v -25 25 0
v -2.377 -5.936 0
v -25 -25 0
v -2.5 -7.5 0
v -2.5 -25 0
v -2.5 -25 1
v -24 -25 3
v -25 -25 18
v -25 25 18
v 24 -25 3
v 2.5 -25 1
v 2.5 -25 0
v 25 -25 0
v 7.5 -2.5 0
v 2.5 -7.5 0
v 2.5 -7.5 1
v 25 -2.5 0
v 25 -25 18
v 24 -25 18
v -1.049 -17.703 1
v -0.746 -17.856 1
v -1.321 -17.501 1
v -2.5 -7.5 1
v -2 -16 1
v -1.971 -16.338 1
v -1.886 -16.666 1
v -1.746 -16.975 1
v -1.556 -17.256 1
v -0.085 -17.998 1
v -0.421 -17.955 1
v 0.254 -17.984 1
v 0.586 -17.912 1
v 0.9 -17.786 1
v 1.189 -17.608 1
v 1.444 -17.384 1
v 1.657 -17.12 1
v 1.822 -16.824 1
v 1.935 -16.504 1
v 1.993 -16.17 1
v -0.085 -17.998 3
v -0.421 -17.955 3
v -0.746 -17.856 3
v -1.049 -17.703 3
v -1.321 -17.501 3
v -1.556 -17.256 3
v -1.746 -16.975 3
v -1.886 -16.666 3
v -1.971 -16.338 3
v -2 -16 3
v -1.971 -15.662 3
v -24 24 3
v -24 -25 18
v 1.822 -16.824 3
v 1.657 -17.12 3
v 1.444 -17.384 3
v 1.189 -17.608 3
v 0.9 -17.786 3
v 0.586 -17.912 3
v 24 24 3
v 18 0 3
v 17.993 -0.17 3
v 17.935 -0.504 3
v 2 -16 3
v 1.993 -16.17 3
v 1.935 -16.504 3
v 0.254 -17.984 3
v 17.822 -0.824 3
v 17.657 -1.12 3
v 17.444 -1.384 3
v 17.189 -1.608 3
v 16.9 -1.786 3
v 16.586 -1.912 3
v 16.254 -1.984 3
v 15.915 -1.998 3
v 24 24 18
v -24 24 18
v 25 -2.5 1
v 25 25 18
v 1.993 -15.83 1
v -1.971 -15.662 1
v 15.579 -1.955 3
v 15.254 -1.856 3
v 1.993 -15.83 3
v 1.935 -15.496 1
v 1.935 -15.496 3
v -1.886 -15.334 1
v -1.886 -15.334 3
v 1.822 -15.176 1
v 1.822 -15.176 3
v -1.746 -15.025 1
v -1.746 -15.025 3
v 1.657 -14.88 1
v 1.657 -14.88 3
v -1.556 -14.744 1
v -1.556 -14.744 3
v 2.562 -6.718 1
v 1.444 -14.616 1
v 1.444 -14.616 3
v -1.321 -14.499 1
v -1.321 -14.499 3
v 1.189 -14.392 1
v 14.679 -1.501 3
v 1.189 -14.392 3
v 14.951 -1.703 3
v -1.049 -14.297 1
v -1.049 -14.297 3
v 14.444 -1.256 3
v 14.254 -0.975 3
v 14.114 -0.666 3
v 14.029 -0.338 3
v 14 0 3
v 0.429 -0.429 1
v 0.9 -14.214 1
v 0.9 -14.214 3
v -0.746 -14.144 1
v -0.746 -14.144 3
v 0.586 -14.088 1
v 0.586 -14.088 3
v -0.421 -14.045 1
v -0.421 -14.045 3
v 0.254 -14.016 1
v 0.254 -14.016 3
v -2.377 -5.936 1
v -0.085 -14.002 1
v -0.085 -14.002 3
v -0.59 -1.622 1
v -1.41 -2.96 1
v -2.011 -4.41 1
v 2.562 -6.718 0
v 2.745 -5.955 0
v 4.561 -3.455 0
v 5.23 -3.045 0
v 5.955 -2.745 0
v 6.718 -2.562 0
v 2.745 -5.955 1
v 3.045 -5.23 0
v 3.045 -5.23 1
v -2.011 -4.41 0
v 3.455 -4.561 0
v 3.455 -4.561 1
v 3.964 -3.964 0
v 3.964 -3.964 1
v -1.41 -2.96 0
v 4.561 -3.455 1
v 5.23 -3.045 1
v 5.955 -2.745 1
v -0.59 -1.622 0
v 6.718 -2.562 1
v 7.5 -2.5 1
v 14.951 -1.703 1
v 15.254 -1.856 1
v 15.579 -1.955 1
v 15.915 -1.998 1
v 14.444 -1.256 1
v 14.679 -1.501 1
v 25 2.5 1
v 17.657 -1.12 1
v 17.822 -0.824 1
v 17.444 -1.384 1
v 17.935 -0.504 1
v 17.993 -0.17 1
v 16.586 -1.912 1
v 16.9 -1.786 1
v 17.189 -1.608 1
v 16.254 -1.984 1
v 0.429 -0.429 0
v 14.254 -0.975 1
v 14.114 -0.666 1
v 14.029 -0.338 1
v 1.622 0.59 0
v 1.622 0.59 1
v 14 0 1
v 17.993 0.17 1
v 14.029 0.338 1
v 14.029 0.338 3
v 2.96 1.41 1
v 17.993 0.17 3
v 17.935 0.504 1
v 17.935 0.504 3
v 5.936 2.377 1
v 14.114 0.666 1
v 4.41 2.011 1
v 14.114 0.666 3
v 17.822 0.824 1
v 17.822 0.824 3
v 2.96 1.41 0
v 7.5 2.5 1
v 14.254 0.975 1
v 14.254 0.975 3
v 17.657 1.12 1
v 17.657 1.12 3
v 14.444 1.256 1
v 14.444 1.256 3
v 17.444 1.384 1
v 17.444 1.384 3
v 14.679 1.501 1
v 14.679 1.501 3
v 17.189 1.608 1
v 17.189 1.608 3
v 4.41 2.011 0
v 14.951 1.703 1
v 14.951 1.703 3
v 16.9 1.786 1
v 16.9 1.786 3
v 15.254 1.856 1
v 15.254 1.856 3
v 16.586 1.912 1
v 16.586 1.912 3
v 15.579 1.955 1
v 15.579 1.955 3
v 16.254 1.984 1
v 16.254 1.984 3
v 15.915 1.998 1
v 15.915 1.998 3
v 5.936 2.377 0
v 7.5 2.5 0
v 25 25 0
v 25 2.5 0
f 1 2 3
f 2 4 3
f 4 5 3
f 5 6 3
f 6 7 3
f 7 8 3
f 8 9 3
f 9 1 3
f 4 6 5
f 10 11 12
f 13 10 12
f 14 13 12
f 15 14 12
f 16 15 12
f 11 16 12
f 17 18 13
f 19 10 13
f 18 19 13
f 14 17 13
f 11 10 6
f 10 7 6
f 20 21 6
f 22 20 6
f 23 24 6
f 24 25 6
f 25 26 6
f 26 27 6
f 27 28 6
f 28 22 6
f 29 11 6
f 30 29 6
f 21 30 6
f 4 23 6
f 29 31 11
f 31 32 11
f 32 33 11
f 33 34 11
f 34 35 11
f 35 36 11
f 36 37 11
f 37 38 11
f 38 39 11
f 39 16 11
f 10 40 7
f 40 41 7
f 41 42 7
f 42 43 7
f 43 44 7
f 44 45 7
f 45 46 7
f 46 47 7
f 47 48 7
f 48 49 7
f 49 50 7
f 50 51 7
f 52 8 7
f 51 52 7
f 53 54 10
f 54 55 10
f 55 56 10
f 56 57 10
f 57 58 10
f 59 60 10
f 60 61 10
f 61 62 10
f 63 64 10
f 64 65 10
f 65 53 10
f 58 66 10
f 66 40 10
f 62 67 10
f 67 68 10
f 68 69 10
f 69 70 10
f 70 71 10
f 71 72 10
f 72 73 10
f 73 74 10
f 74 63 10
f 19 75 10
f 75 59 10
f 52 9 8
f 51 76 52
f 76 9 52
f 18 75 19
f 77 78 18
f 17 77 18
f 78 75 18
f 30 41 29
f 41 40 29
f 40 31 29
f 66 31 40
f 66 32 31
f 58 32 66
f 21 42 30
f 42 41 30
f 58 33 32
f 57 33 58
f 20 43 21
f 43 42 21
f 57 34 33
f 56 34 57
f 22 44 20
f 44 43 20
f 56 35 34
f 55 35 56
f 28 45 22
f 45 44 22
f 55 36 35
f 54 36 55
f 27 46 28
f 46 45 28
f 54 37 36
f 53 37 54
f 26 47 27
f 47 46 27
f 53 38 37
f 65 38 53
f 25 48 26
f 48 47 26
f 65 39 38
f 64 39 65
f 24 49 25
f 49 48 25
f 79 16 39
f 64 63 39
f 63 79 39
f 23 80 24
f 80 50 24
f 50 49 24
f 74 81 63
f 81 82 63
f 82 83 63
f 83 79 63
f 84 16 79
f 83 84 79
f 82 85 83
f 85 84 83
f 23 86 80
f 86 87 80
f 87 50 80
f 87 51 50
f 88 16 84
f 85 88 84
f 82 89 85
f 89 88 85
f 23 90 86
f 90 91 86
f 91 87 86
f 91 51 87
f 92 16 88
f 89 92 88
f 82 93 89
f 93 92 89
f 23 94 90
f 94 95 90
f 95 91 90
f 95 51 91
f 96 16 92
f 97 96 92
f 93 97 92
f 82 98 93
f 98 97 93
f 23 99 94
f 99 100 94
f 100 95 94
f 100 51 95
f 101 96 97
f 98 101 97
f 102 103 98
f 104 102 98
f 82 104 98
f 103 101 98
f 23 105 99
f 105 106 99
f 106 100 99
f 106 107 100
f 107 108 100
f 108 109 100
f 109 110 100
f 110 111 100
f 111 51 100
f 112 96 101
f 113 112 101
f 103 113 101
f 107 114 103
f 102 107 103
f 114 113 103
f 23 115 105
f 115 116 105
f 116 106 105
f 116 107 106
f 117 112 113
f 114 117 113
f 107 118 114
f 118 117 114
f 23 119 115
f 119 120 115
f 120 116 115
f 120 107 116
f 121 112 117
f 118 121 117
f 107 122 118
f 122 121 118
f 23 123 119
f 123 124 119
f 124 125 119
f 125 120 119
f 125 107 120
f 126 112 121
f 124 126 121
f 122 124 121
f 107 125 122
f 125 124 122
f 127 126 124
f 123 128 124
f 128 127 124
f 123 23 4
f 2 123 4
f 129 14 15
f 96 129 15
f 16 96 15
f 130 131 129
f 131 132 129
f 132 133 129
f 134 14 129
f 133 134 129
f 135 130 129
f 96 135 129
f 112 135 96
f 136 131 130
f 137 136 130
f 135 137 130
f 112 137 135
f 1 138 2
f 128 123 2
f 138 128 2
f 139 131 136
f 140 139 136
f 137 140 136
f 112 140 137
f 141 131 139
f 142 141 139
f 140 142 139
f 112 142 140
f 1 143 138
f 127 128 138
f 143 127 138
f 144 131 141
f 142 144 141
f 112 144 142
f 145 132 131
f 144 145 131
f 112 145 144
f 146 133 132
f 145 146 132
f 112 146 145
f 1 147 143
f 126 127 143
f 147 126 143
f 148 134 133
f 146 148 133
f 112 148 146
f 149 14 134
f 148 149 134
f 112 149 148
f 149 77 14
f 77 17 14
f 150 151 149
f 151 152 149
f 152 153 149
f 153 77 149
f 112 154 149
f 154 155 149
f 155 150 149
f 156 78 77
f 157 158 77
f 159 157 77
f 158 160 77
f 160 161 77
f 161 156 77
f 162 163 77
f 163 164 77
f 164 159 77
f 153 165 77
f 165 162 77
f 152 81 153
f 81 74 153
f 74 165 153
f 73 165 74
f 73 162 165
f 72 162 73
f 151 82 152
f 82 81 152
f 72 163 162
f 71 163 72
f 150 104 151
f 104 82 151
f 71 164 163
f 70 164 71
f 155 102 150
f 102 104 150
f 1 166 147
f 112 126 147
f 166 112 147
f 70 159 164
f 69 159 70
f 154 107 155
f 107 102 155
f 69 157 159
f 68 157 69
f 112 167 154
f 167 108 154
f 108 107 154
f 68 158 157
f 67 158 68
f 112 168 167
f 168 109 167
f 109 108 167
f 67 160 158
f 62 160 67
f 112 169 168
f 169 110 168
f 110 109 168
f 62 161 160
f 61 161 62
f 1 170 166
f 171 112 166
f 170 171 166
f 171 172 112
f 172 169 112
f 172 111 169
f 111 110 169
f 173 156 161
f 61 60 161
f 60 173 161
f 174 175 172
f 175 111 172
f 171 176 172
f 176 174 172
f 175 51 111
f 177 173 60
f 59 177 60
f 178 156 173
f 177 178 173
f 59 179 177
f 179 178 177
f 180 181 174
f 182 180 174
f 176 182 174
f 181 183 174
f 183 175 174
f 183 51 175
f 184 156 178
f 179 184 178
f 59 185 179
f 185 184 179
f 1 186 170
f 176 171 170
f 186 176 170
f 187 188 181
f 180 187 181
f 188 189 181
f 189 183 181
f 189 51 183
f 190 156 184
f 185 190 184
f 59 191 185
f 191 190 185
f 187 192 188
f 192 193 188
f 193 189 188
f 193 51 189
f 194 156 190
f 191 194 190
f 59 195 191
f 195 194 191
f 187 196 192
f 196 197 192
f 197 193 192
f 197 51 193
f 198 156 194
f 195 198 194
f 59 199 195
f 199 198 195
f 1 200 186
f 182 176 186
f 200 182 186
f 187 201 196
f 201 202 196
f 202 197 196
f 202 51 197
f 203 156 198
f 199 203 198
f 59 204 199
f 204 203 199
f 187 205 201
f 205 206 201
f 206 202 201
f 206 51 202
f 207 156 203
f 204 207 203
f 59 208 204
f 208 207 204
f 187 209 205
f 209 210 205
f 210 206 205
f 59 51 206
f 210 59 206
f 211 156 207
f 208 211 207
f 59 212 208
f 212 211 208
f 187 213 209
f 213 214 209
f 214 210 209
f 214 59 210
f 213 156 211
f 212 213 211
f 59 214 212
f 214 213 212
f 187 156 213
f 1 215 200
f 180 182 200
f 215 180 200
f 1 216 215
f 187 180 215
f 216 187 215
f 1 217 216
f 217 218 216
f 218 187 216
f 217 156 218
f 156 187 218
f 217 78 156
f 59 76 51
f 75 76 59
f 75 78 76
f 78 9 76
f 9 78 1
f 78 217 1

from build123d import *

# Parameters (mm, degrees)
SKICA1_W                 = 50
SKICA1_H                 = 50
P_IDAT_VYSUNUT_M2_DEPTH  = 3
SKICA5_W                 = 5
SKICA5_H                 = 22.5
ODEBRAT_VYSUNUT_M3_DEPTH = 1
P_IDAT_VYSUNUT_M9_DEPTH  = 15
SKICA17_R                = 2
ODEBRAT_VYSUNUT_M8_DEPTH = 4
ZAOBLIT1_R               = 10
ZAOBLIT2_R               = 5


with BuildPart() as part:
    # Skica1 → Přidat vysunutím2 (new body)
    with BuildSketch(Plane.XY):
        Rectangle(SKICA1_W, SKICA1_H)
    extrude(amount=P_IDAT_VYSUNUT_M2_DEPTH)

    # Skica5 → Odebrat vysunutím3 (cut)
    with BuildSketch(Plane(origin=(0, 0, 0), x_dir=(-1, 0, 0), z_dir=(0, 0, -1))):
        Polygon((-25, -2.5), (-2.5, -2.5), (2.5, -2.5), (2.5, 2.5), (-25, 2.5), align=None)
        with Locations((0, -13.75)):
            Rectangle(SKICA5_W, SKICA5_H)
    extrude(amount=-ODEBRAT_VYSUNUT_M3_DEPTH, mode=Mode.SUBTRACT)

    # Skica14 → Přidat vysunutím9 (add)
    with BuildSketch(Plane.XY.offset(3)):
        Polygon((25, 25), (-25, 25), (-25, -25), (-24, -25), (-24, 24), (24, 24), (24, -25), (25, -25), align=None)
    extrude(amount=P_IDAT_VYSUNUT_M9_DEPTH)

    # Skica17 → Odebrat vysunutím8 (cut)
    with BuildSketch(Plane(origin=(0, 0, 1), x_dir=(-1, 0, 0), z_dir=(0, 0, -1))):
        with Locations((-16, 0)):
            Circle(SKICA17_R)
        with Locations((0, -16)):
            Circle(SKICA17_R)
    extrude(amount=-ODEBRAT_VYSUNUT_M8_DEPTH, mode=Mode.SUBTRACT)

    # Zaoblit1
    zaoblit1_edges = [part.edges().sort_by_distance(p)[0] for p in [
        (-2.5, 2.5, 0.5),
    ]]
    fillet(zaoblit1_edges, radius=ZAOBLIT1_R)

    # Zaoblit2
    zaoblit2_edges = [part.edges().sort_by_distance(p)[0] for p in [
        (2.5, -2.5, 0.5),
    ]]
    fillet(zaoblit2_edges, radius=ZAOBLIT2_R)


solid = part.part
